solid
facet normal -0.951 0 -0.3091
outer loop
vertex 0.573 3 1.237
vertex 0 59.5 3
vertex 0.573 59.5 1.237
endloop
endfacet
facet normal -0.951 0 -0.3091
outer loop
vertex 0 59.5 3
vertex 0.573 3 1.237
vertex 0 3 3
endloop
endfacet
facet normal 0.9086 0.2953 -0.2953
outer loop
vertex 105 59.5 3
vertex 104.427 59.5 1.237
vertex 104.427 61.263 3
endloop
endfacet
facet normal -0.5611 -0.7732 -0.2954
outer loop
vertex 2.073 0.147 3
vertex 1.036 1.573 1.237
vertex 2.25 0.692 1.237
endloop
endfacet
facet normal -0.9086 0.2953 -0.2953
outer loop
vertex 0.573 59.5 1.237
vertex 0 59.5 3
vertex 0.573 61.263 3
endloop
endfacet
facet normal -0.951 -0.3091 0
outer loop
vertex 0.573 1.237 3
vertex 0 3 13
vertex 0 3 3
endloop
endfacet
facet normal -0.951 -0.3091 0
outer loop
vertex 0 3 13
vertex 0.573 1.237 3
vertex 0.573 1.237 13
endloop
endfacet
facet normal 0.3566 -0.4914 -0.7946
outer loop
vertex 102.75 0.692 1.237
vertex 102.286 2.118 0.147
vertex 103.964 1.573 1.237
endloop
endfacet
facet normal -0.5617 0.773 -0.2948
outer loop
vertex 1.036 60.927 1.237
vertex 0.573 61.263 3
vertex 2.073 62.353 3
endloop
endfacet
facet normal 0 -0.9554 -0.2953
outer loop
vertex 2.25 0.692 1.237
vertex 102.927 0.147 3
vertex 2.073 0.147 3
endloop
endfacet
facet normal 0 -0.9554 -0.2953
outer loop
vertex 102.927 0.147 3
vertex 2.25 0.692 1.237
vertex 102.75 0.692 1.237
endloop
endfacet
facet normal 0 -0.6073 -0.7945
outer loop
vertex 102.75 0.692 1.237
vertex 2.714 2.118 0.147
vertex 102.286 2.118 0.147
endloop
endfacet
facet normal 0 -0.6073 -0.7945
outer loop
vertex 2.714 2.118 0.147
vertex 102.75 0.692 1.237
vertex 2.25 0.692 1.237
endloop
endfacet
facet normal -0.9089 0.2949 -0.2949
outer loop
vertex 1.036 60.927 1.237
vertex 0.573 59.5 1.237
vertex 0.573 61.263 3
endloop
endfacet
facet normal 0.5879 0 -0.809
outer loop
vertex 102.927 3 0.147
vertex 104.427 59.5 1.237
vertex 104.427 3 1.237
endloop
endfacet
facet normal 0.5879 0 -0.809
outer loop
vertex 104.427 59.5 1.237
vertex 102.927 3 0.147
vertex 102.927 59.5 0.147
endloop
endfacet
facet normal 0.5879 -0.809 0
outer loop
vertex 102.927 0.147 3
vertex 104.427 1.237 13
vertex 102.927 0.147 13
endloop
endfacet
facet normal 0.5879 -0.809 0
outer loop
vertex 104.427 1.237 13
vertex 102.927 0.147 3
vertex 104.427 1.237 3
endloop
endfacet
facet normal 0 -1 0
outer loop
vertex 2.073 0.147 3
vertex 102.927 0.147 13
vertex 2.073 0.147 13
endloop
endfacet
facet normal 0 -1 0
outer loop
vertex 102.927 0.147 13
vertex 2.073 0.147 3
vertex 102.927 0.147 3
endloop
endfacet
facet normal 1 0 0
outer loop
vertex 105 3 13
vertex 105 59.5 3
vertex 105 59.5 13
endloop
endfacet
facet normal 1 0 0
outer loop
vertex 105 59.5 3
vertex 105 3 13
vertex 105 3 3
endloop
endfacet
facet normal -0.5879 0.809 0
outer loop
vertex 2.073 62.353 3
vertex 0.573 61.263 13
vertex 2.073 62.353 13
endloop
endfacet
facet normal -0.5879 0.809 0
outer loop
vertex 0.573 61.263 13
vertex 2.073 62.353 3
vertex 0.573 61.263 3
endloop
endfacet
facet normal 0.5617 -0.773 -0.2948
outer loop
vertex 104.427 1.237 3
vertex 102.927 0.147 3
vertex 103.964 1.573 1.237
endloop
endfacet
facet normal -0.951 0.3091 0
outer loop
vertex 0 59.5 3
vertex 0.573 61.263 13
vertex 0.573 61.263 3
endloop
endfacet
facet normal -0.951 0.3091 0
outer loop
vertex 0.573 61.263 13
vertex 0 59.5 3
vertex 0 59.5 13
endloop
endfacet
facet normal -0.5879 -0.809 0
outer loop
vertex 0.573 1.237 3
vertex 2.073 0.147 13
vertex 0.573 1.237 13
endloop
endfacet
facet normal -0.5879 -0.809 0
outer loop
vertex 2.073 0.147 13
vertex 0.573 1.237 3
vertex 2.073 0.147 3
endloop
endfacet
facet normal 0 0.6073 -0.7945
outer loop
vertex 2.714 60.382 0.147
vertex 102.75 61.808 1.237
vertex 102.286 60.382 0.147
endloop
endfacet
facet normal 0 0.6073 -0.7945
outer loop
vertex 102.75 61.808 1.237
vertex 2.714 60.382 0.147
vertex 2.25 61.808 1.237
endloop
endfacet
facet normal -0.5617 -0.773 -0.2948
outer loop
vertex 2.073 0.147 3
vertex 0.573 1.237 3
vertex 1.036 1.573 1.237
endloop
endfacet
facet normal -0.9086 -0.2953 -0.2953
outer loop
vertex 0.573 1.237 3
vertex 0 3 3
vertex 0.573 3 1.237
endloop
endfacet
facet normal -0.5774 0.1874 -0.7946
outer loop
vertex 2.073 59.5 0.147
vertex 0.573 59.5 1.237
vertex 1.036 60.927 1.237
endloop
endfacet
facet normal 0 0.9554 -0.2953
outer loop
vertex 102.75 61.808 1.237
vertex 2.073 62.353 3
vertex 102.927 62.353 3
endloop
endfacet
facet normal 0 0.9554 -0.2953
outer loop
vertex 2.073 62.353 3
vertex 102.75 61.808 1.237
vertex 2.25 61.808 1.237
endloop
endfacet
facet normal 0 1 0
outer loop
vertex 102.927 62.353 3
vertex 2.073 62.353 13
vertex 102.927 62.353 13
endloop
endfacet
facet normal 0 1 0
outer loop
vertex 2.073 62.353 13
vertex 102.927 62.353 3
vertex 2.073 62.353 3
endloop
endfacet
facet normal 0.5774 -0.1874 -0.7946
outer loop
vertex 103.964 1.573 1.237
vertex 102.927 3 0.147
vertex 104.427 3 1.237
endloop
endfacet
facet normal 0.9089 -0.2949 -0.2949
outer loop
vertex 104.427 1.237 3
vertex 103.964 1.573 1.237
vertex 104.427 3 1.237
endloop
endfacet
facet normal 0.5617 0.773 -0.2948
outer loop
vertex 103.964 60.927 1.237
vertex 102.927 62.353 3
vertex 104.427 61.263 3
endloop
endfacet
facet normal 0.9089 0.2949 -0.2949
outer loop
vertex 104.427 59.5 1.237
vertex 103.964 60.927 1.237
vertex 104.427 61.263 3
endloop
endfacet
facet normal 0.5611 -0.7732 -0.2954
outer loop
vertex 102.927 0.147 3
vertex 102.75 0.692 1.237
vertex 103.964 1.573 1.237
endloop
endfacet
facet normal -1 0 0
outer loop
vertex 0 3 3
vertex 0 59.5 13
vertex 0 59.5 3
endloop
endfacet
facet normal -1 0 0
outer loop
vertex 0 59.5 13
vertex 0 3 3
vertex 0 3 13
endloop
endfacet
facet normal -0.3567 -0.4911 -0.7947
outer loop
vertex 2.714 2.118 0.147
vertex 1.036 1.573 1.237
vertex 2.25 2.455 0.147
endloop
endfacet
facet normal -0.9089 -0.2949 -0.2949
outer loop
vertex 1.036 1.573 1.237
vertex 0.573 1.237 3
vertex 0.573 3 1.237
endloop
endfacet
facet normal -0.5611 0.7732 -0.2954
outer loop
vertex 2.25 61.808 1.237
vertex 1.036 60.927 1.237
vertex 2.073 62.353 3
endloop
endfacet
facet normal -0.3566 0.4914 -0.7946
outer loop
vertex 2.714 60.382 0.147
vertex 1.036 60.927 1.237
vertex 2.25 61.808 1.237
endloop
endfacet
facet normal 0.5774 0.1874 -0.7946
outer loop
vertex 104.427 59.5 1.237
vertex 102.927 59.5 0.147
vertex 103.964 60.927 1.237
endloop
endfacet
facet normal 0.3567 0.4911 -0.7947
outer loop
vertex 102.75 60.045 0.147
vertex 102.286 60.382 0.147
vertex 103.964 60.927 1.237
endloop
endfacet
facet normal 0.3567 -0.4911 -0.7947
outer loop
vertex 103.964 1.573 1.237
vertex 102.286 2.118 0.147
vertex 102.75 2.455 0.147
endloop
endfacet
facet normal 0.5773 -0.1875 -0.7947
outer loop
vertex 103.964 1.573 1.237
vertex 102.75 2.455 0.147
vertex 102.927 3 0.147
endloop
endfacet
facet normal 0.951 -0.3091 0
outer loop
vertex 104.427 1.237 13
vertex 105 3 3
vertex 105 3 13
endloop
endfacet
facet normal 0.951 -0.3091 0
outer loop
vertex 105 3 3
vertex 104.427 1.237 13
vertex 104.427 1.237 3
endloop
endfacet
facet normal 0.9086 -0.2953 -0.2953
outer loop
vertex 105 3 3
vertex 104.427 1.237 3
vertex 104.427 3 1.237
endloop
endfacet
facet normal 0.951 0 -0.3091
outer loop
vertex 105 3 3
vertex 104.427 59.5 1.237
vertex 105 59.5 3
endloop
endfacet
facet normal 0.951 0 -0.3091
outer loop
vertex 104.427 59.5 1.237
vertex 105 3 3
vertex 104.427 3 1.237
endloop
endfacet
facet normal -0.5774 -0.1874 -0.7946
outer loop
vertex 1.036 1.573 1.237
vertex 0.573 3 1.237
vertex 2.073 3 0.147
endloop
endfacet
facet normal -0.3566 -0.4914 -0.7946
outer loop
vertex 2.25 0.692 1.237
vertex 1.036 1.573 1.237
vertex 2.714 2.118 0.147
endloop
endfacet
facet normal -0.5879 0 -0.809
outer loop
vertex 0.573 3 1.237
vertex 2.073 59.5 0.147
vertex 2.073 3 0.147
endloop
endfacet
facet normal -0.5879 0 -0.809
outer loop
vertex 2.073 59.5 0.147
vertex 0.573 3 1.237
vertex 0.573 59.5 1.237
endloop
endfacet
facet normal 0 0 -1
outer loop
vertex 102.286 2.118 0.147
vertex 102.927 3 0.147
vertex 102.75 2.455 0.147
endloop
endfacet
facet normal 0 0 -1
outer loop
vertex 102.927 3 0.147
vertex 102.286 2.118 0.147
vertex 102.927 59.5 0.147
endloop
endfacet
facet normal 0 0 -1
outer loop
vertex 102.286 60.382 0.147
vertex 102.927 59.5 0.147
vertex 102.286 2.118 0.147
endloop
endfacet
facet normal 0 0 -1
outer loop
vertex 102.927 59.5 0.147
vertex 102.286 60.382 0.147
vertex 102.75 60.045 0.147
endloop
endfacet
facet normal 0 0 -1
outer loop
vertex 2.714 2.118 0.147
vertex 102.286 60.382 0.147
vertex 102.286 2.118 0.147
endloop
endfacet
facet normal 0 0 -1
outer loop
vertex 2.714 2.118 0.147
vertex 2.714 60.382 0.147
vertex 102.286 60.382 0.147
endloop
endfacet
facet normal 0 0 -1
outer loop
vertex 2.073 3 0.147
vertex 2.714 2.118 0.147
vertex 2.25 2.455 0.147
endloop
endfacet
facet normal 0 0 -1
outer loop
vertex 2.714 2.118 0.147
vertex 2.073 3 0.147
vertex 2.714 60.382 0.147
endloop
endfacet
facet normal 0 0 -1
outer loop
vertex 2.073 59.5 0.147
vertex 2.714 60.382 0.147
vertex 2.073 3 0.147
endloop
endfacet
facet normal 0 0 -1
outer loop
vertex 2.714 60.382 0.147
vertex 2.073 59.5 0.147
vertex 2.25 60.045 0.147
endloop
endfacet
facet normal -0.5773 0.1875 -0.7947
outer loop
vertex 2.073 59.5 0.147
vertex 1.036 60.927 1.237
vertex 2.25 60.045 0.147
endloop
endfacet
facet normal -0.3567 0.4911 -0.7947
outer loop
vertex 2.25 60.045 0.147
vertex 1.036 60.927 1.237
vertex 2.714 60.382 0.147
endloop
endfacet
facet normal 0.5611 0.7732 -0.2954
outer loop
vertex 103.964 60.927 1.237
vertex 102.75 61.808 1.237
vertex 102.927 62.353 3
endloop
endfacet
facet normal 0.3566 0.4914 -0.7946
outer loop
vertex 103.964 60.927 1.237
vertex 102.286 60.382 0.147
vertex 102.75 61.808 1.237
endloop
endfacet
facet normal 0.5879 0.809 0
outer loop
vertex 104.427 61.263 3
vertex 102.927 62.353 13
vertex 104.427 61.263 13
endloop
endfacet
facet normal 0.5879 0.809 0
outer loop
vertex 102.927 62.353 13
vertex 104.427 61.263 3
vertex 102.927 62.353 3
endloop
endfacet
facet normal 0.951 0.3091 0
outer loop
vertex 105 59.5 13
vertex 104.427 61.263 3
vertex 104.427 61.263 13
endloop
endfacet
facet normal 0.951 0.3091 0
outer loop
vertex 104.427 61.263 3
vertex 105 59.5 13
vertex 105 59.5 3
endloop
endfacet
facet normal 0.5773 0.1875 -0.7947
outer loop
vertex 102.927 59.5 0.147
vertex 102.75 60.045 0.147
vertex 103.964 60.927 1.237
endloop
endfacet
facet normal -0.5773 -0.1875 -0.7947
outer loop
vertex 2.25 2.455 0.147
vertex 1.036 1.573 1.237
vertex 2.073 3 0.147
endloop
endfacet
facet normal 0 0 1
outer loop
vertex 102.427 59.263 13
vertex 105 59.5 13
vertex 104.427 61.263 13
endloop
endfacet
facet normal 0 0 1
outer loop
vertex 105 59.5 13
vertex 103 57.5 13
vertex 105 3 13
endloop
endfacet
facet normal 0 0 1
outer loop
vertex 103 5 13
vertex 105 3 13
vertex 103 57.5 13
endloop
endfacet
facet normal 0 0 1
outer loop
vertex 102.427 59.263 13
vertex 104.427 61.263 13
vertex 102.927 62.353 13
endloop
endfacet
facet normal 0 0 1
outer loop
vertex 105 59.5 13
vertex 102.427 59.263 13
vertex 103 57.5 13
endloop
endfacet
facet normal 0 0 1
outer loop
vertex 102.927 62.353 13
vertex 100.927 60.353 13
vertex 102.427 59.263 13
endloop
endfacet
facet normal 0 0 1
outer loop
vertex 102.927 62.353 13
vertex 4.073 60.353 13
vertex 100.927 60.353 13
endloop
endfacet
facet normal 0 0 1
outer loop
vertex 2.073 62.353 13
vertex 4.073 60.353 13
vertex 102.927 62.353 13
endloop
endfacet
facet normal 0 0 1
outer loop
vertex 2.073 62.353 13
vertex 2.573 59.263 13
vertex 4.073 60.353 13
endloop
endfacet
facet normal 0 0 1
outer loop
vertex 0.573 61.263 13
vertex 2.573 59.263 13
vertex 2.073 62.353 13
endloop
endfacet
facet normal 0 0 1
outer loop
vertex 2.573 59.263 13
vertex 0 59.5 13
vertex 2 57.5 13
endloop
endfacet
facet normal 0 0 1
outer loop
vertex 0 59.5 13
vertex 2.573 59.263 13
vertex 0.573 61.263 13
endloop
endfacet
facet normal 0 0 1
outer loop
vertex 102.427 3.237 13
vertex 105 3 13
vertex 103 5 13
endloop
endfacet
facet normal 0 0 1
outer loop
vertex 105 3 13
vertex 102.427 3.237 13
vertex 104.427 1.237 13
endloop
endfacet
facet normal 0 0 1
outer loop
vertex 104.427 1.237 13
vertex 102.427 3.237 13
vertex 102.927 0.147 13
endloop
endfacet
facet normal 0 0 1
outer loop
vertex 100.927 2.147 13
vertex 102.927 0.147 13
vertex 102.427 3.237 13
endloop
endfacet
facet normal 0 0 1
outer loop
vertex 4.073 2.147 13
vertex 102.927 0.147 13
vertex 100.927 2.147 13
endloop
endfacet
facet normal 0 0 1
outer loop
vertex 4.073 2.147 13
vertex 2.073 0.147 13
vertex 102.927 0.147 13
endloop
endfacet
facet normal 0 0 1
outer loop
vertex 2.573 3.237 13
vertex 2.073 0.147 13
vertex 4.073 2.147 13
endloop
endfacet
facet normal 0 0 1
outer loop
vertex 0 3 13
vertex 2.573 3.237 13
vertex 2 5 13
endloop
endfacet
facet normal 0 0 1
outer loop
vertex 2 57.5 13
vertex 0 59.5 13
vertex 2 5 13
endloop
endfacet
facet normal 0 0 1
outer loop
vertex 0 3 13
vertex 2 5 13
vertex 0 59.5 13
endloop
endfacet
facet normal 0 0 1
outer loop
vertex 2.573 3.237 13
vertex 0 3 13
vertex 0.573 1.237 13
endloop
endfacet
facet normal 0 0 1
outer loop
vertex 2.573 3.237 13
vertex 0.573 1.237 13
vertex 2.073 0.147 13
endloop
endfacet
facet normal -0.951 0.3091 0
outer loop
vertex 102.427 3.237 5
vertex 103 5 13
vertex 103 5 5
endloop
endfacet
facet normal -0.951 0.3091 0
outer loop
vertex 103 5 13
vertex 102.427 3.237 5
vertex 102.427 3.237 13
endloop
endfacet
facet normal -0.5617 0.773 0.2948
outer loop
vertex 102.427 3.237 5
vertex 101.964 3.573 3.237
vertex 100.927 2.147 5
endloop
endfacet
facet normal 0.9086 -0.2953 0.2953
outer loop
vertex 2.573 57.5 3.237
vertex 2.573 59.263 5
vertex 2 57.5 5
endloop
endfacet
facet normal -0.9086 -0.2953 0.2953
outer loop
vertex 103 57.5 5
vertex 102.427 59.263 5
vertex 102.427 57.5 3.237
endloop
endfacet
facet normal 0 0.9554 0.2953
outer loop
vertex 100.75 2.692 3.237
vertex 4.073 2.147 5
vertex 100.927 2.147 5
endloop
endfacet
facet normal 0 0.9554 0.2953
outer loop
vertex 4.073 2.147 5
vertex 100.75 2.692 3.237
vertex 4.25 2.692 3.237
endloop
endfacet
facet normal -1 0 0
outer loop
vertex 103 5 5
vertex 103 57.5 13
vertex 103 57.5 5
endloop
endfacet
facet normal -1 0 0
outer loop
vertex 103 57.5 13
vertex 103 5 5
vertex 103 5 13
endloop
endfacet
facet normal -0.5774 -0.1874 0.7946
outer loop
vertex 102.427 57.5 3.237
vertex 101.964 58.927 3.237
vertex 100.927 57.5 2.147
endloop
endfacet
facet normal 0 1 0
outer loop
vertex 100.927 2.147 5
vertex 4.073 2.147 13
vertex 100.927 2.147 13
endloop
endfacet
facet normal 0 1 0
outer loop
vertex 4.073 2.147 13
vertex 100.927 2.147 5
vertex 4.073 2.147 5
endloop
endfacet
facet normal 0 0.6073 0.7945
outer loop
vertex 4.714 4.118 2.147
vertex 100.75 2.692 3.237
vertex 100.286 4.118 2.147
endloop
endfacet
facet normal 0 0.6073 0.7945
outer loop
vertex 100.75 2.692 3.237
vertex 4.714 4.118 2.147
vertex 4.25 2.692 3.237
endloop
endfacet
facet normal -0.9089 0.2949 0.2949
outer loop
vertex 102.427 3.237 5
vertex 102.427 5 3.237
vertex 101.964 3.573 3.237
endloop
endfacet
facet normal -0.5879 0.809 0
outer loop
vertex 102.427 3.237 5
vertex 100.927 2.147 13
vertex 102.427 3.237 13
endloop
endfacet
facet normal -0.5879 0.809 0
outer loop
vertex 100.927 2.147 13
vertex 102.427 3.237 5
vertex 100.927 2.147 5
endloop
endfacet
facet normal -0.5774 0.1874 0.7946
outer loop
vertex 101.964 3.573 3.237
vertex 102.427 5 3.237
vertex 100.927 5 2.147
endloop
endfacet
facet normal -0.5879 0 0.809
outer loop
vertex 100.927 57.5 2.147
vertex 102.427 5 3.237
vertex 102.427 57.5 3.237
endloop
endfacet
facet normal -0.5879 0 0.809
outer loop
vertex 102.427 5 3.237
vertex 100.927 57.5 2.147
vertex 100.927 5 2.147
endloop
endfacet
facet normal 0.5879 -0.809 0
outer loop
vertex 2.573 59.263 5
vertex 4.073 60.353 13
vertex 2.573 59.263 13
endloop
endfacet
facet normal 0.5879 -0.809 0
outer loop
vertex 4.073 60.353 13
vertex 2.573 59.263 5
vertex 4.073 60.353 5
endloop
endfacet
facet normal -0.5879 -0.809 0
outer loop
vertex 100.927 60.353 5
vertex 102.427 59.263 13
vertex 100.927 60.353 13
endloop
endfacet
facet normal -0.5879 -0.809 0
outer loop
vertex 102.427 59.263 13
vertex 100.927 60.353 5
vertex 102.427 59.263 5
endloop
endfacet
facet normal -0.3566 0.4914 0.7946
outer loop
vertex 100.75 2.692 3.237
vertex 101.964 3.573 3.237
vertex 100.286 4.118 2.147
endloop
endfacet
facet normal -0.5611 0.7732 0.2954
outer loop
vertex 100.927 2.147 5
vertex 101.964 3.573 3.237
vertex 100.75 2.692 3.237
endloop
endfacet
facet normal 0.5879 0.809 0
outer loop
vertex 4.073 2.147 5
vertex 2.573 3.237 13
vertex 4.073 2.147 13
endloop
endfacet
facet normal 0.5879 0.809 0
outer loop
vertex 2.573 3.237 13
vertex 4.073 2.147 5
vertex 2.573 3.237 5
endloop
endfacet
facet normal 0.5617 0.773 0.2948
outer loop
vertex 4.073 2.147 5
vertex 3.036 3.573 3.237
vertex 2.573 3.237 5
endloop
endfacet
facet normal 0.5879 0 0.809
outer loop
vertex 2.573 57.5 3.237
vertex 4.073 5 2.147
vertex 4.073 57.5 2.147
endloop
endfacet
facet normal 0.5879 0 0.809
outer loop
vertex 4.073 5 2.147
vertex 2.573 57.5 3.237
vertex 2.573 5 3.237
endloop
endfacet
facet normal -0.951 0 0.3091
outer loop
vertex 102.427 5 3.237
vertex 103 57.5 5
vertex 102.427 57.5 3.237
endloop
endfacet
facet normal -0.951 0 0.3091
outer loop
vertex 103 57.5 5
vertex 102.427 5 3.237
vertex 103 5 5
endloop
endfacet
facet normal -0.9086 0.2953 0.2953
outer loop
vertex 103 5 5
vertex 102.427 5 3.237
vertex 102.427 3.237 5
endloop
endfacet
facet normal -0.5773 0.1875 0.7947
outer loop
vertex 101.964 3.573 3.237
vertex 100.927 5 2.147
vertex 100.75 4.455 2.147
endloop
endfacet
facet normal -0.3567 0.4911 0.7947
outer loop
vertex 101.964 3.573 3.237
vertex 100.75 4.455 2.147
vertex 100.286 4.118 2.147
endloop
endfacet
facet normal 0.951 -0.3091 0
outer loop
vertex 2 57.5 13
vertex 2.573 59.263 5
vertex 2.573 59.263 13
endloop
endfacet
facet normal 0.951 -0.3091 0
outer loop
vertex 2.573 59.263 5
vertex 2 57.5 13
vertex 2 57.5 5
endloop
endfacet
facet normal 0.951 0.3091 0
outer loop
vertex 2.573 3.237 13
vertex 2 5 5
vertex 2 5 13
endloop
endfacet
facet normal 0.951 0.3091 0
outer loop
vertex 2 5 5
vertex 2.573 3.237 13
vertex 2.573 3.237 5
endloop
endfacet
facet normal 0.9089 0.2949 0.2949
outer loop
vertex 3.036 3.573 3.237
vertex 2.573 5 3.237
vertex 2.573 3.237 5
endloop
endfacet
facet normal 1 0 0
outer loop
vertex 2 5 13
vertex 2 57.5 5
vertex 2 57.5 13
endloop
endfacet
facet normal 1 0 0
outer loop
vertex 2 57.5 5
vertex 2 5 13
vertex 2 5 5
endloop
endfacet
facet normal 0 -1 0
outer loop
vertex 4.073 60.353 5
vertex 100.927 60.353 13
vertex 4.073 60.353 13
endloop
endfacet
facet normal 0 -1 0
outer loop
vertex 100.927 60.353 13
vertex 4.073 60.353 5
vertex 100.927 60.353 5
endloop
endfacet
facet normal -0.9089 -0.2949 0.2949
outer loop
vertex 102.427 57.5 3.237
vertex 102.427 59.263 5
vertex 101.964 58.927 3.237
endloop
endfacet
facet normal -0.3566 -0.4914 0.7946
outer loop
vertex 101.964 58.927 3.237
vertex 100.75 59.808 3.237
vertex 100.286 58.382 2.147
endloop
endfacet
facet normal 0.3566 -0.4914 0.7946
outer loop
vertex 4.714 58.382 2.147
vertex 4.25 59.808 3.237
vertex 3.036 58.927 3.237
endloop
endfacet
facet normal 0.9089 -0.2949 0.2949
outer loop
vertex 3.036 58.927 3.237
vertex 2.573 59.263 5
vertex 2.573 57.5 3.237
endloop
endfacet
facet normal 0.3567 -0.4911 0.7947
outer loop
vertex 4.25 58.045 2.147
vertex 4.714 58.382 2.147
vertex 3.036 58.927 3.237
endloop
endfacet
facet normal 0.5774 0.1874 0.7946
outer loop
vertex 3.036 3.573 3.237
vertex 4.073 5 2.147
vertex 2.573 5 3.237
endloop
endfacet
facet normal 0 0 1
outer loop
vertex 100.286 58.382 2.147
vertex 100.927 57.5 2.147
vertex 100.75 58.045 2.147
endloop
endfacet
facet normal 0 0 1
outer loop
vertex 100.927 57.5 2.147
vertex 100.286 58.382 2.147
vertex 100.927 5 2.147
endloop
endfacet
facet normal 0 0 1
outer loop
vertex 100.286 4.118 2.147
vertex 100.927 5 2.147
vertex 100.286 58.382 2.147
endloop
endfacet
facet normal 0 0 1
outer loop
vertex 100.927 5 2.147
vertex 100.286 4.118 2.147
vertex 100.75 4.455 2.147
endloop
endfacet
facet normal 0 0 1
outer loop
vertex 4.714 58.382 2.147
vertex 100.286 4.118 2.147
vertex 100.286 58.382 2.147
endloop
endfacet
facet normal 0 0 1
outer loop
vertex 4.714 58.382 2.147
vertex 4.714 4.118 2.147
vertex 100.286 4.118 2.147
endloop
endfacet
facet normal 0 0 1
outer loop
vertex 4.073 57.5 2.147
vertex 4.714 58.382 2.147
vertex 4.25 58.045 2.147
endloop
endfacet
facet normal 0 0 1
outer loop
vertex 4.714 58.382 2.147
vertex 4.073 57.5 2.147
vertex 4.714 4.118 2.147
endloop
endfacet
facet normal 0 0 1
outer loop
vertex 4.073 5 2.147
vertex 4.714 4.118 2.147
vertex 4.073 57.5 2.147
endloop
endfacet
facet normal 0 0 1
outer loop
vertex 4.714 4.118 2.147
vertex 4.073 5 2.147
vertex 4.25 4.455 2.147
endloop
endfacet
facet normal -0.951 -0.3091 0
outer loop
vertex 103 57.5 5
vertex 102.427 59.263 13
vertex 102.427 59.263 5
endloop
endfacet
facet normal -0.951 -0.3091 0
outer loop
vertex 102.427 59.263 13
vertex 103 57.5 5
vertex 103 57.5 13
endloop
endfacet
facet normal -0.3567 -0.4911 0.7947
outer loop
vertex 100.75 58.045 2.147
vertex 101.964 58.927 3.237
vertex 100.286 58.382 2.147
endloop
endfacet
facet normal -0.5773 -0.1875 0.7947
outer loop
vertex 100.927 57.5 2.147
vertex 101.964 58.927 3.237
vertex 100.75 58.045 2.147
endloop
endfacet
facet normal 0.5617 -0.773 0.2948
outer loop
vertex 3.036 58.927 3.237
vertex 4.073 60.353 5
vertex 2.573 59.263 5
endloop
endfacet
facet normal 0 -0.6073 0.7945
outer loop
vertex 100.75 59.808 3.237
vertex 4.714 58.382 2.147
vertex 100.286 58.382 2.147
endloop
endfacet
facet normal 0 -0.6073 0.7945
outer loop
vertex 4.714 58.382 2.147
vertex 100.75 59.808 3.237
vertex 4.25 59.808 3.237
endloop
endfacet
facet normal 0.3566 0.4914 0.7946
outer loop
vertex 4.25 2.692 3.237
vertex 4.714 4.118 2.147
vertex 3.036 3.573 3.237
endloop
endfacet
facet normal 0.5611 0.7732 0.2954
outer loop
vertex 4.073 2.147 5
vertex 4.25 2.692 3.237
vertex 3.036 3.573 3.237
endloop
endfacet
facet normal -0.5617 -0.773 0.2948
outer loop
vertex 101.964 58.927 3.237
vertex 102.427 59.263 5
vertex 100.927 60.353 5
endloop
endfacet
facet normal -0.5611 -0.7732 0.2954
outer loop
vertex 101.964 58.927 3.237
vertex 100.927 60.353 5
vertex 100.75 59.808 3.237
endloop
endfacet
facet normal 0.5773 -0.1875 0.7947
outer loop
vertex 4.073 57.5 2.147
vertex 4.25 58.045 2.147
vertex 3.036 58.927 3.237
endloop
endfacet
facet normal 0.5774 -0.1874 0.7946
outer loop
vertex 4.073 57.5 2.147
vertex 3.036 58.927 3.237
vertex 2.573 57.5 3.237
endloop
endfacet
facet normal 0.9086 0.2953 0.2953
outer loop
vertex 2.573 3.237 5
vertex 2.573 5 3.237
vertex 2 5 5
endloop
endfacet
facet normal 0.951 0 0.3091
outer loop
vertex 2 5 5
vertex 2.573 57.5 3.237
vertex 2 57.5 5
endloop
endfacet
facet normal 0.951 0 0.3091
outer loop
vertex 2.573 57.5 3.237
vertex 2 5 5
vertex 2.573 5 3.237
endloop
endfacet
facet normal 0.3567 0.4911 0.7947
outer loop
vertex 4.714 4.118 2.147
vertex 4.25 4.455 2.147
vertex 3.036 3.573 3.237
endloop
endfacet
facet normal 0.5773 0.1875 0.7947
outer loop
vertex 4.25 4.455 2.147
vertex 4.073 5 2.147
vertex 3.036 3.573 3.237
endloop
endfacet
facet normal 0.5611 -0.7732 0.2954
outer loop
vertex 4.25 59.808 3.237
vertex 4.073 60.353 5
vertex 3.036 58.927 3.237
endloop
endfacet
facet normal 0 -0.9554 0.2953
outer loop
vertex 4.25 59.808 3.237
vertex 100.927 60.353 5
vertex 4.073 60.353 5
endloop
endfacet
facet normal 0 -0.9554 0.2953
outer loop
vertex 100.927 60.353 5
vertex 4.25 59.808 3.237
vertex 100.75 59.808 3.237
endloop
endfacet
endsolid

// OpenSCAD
// Settings
box_length = 105;
box_width = 62.5;
box_height = 13;
wall_thickness = 2;

rounding = 3;
bleed = 1;

// Derived attributes
r_box_length = box_length-rounding*2;
r_box_width = box_width-rounding*2;
r_box_height = box_height-rounding*2+rounding+bleed;

r_hollow_length = box_length-rounding*2-wall_thickness*2;
r_hollow_width = box_width-rounding*2-wall_thickness*2;
r_hollow_height = box_height-rounding*2+rounding+bleed;
r_hollow_offset = rounding+wall_thickness;

difference() {
  // Base tray
  minkowski() {
    translate([rounding, rounding, rounding]) {
      cube([r_box_length, r_box_width, r_box_height]);
    }
    sphere(rounding);
  }

  // Slice off top
  translate([-bleed,-bleed,box_height]) {
    cube([box_length+bleed*2, box_width+bleed*2, rounding+bleed]);
  }

  // Hollow out tray
  minkowski() {
    translate([r_hollow_offset, r_hollow_offset, r_hollow_offset]) {
      cube([r_hollow_length, r_hollow_width, r_hollow_height]);
    }
    sphere(rounding);
  }
}
